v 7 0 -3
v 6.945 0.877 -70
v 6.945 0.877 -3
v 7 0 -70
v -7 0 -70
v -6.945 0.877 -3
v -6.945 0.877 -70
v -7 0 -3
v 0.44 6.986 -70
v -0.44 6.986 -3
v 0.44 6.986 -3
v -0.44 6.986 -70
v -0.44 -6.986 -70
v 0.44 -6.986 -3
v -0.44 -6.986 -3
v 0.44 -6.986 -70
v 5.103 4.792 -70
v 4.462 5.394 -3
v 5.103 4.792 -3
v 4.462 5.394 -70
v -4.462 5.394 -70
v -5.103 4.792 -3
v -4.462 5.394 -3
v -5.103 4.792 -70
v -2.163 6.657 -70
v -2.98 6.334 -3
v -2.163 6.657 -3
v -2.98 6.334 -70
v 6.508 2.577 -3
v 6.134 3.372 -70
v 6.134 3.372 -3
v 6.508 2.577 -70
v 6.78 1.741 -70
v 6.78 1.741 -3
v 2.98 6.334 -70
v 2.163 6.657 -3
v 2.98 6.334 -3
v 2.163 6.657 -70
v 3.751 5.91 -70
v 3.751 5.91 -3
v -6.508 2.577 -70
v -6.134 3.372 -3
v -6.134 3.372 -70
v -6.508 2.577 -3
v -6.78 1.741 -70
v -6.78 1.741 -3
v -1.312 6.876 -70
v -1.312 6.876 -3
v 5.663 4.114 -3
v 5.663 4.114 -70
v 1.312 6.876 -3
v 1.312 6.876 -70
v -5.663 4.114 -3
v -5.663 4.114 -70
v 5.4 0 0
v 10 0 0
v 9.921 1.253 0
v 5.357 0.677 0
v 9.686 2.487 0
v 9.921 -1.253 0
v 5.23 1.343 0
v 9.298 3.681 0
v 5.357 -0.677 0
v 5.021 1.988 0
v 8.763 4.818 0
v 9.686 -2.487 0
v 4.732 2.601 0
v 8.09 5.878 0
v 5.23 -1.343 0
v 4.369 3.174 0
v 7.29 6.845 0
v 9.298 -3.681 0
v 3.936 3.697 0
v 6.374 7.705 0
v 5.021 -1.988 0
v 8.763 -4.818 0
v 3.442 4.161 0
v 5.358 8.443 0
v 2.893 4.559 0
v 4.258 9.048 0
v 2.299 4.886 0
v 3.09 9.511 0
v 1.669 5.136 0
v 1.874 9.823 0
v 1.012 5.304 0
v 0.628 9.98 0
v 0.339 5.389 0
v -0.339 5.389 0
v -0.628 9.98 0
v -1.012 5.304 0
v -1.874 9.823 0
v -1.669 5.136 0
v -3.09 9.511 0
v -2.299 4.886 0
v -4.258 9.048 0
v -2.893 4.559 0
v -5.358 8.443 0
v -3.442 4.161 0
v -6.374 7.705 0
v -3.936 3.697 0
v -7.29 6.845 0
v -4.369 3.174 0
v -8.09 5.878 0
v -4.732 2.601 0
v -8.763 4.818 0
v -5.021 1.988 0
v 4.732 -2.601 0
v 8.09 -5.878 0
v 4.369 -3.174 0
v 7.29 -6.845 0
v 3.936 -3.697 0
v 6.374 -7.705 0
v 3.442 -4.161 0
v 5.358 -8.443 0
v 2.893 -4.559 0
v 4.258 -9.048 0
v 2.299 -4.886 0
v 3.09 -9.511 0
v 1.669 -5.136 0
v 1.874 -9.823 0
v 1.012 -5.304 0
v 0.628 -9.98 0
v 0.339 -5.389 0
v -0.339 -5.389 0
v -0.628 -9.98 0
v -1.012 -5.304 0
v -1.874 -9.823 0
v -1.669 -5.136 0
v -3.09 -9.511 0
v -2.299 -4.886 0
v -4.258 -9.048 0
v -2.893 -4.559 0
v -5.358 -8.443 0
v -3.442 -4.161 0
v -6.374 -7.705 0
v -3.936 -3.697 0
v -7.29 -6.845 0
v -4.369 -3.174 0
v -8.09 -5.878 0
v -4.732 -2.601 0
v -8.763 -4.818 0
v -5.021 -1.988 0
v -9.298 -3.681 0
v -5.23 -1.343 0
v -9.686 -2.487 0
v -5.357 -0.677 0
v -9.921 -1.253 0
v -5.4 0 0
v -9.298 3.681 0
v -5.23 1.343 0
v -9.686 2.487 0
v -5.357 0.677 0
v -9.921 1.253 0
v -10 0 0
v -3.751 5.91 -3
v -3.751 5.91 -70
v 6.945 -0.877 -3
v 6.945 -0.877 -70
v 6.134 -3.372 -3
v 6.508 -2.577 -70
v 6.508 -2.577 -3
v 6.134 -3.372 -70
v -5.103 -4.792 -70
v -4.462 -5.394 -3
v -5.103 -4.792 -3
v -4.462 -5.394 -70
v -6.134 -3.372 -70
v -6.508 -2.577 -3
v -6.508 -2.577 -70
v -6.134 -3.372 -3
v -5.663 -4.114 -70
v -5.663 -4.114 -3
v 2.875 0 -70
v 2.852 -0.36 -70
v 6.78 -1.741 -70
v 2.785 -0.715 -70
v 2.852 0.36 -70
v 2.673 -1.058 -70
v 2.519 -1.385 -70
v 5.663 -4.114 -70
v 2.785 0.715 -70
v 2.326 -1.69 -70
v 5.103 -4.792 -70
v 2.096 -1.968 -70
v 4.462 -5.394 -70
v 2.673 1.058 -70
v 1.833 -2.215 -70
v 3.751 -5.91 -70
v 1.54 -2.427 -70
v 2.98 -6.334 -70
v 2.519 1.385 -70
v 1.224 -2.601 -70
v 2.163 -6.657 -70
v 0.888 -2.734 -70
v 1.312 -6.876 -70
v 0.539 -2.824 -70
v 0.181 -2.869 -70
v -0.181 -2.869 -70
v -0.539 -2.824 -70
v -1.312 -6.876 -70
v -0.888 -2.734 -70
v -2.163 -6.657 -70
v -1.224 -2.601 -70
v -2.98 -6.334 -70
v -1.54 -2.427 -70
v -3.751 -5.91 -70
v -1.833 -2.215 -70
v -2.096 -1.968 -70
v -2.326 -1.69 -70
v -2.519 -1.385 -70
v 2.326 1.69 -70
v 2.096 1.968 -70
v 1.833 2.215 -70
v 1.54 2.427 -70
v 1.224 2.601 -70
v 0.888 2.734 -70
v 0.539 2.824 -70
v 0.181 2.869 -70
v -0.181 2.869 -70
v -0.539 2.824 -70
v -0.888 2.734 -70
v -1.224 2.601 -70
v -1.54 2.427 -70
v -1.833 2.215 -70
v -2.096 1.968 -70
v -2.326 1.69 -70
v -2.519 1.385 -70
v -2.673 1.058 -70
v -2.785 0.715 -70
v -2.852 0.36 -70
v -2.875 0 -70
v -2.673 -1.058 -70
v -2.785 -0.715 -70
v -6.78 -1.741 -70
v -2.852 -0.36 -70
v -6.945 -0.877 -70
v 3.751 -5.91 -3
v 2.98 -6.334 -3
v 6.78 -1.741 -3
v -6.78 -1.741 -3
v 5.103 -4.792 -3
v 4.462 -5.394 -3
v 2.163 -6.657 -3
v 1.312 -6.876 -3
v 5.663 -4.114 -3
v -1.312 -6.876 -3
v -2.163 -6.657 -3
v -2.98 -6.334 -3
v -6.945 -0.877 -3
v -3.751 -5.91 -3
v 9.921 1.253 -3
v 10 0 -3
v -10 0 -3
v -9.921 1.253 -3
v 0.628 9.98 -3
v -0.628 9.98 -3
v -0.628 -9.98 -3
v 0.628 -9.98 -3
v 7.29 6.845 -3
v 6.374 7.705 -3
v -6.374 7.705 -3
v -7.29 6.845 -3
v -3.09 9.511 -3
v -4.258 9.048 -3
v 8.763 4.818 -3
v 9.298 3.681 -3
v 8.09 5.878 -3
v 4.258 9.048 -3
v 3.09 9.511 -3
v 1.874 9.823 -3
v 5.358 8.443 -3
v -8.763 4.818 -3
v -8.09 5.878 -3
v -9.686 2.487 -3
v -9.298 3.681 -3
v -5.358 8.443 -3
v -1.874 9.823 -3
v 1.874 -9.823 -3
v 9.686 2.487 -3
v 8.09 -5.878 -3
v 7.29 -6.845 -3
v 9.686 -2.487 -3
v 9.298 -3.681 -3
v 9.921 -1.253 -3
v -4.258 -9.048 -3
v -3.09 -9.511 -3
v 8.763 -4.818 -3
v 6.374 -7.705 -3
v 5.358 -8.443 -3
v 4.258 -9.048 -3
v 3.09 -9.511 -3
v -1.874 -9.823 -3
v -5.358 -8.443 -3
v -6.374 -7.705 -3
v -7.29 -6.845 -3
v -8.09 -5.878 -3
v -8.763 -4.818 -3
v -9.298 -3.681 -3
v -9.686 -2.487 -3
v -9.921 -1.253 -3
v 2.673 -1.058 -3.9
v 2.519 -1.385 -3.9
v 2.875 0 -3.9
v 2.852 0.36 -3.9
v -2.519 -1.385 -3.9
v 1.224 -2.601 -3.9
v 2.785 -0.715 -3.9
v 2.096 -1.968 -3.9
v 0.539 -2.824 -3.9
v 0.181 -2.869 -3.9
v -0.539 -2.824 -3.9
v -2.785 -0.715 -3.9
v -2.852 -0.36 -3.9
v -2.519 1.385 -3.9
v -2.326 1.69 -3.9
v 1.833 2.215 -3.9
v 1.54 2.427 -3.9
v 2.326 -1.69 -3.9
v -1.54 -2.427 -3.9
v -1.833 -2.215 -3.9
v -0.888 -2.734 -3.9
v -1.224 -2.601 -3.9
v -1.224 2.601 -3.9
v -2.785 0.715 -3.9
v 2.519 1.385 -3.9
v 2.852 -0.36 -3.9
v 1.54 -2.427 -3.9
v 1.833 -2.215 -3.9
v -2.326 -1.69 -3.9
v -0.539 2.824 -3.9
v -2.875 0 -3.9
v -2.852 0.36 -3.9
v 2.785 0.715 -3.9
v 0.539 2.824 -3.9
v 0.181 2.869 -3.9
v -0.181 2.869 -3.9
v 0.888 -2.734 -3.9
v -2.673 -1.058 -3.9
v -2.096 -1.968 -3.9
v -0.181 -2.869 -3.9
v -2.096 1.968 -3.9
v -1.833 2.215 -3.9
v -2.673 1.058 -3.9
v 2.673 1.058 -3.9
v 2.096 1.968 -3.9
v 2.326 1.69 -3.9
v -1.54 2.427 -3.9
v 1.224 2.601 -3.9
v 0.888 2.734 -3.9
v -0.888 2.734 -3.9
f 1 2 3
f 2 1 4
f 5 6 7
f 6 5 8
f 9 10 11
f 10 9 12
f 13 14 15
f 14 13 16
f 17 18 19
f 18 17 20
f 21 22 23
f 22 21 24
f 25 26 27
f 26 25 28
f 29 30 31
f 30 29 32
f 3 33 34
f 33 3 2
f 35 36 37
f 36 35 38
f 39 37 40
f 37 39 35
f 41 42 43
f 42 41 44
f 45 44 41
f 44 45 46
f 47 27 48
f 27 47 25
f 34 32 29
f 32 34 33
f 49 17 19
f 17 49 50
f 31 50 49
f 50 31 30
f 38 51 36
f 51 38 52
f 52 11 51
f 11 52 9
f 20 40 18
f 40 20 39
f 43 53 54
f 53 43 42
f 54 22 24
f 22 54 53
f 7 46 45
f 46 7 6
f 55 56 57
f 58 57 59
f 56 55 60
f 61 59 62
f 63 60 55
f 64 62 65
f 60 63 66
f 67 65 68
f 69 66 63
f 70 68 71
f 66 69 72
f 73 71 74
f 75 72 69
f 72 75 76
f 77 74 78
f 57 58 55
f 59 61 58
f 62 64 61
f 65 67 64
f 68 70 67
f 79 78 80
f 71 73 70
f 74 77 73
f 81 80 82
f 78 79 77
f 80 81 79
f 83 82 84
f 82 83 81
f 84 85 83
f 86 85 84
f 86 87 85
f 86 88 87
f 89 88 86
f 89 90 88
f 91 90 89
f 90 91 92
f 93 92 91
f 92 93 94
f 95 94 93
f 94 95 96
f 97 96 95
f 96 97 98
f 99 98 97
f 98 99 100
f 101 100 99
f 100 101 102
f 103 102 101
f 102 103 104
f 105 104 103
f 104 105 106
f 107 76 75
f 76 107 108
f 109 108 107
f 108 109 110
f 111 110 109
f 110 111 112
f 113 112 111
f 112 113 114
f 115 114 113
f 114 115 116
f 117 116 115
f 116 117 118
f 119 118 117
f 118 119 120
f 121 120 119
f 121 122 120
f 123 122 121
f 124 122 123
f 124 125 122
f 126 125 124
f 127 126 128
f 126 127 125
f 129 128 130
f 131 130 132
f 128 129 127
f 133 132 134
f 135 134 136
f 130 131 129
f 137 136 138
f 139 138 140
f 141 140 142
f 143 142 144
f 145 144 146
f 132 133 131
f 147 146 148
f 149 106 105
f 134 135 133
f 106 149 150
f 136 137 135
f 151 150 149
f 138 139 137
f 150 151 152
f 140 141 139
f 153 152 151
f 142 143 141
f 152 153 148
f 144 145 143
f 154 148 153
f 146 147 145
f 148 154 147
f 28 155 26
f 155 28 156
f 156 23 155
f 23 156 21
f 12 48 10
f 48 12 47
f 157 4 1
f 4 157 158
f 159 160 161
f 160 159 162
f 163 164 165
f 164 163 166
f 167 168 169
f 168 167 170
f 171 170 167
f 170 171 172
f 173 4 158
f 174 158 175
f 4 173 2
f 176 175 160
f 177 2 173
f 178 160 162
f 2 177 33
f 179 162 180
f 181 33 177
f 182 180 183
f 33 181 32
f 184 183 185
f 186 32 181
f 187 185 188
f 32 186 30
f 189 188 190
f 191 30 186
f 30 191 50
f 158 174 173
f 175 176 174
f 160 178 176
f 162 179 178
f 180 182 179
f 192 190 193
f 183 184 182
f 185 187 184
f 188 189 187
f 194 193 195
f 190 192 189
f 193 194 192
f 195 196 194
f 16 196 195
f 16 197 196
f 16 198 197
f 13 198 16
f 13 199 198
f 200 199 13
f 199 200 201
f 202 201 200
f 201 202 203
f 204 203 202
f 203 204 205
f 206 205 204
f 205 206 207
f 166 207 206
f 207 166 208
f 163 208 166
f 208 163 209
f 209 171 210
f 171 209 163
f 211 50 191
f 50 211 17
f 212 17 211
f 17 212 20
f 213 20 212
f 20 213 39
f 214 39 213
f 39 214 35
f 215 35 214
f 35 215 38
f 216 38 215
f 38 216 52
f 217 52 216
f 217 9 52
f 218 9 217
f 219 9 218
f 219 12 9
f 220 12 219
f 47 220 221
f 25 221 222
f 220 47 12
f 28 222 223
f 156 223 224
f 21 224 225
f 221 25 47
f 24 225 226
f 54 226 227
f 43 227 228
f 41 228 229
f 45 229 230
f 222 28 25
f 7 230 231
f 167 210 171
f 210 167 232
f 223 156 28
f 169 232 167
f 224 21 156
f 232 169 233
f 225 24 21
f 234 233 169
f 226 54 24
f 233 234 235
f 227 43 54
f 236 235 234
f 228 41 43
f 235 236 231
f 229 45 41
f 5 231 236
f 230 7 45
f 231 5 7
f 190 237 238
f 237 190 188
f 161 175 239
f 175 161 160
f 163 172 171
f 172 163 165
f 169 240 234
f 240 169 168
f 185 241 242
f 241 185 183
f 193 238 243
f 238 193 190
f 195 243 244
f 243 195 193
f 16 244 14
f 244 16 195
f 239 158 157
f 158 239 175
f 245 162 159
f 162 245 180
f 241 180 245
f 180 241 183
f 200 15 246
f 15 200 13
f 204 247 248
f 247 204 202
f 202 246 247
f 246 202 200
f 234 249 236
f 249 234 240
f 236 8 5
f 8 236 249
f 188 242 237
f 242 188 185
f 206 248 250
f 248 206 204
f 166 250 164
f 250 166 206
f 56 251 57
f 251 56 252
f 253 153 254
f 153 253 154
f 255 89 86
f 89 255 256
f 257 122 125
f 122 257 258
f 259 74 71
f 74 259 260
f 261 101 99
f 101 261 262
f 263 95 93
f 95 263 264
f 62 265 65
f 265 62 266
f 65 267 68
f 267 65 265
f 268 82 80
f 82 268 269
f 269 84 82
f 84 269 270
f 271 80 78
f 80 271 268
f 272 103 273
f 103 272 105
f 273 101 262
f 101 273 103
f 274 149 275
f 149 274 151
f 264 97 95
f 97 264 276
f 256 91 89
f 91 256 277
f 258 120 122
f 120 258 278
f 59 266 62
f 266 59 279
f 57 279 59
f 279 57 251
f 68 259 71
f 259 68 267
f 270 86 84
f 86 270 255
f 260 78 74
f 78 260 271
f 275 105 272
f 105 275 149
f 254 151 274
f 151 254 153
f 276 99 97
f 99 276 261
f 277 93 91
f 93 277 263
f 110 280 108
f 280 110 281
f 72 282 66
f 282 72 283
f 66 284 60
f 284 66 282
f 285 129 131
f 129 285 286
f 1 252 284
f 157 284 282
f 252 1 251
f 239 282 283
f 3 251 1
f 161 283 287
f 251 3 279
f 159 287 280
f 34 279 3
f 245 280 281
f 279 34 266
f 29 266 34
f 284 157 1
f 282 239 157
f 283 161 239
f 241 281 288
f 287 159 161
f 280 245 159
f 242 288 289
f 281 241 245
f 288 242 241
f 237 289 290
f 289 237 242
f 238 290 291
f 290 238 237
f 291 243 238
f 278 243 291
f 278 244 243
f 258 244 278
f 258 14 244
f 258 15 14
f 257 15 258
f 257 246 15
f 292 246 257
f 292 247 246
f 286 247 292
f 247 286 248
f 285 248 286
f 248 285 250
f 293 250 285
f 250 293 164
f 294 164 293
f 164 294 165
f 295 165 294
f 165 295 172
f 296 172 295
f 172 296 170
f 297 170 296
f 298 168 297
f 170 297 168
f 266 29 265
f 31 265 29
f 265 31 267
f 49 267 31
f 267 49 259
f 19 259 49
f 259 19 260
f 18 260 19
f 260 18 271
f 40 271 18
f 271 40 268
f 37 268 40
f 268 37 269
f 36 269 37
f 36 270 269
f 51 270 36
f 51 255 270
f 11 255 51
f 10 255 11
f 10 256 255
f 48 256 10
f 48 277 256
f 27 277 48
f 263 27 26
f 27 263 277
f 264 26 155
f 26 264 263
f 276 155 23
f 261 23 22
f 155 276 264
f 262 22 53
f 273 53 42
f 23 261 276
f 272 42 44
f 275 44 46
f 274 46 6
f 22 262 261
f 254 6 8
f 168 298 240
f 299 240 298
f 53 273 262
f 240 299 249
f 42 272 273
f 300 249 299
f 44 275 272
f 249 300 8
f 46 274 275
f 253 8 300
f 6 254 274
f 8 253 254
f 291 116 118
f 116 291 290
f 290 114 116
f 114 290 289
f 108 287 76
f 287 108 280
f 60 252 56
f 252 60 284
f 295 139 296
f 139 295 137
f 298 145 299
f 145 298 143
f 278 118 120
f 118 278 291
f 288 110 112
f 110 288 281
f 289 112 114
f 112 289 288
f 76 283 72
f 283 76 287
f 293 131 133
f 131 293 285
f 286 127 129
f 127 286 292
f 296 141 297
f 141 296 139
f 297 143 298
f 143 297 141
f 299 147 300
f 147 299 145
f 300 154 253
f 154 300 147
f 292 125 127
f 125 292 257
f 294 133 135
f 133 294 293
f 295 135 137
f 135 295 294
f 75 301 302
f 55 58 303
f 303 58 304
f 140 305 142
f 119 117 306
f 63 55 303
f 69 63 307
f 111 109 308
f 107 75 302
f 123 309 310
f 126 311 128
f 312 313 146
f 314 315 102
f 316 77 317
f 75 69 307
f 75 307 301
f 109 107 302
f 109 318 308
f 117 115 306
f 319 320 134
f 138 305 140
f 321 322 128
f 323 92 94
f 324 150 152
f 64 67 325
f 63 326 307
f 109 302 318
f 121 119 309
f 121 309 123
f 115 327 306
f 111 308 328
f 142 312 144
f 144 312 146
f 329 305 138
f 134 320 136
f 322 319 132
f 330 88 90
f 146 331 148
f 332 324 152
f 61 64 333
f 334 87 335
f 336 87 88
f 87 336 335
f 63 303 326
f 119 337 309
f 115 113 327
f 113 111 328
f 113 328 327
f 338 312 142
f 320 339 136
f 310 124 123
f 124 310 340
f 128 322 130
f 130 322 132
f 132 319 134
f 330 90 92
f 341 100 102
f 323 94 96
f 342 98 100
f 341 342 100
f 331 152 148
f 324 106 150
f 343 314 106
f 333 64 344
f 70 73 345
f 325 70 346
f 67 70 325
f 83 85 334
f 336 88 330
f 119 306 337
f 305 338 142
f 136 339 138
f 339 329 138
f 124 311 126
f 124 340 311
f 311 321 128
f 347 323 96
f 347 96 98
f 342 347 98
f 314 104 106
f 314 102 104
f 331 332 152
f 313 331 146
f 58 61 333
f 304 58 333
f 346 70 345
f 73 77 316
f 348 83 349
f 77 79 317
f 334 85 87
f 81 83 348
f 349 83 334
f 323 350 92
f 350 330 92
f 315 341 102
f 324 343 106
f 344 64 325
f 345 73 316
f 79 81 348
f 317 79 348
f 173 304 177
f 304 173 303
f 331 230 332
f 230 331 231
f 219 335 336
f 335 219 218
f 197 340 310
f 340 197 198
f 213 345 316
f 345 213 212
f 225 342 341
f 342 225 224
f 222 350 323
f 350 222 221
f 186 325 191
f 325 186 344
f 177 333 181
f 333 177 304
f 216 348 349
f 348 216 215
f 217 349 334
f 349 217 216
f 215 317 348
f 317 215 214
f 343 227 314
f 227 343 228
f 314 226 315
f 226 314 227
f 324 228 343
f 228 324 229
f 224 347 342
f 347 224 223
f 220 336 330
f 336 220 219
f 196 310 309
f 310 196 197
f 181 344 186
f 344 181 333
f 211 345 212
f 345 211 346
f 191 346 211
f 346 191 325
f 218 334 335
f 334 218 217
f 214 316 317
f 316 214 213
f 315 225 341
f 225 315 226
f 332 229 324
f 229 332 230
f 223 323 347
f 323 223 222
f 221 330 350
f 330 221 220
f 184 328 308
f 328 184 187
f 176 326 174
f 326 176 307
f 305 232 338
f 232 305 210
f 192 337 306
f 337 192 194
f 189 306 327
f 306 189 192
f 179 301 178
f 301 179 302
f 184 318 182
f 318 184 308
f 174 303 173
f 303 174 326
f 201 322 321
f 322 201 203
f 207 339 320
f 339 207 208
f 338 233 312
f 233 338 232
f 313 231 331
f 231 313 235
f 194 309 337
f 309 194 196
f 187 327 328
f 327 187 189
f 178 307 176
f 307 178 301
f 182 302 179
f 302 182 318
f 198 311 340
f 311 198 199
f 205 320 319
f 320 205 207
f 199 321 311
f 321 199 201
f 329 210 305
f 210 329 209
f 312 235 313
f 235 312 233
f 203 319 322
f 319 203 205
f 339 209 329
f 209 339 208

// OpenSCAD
$fn = 50;


difference() {
	union() {
		translate(v = [0, 0, -70.0000000000]) {
			cylinder(h = 70, r = 7.0000000000);
		}
		translate(v = [0, 0, -3.0000000000]) {
			cylinder(h = 3, r = 10.0000000000);
		}
	}
	union() {
		translate(v = [0, 0, 0]) {
			rotate(a = [0, 0, 0]) {
				difference() {
					union() {
						#translate(v = [0, 0, -70.0000000000]) {
							cylinder(h = 70, r = 2.6000000000);
						}
						#translate(v = [0, 0, -3.9000000000]) {
							cylinder(h = 3.9000000000, r1 = 2.8750000000, r2 = 5.4000000000);
						}
						#translate(v = [0, 0, -70.0000000000]) {
							cylinder(h = 70, r = 2.8750000000);
						}
						#translate(v = [0, 0, -70.0000000000]) {
							cylinder(h = 70, r = 2.6000000000);
						}
					}
					union();
				}
			}
		}
	}
}
